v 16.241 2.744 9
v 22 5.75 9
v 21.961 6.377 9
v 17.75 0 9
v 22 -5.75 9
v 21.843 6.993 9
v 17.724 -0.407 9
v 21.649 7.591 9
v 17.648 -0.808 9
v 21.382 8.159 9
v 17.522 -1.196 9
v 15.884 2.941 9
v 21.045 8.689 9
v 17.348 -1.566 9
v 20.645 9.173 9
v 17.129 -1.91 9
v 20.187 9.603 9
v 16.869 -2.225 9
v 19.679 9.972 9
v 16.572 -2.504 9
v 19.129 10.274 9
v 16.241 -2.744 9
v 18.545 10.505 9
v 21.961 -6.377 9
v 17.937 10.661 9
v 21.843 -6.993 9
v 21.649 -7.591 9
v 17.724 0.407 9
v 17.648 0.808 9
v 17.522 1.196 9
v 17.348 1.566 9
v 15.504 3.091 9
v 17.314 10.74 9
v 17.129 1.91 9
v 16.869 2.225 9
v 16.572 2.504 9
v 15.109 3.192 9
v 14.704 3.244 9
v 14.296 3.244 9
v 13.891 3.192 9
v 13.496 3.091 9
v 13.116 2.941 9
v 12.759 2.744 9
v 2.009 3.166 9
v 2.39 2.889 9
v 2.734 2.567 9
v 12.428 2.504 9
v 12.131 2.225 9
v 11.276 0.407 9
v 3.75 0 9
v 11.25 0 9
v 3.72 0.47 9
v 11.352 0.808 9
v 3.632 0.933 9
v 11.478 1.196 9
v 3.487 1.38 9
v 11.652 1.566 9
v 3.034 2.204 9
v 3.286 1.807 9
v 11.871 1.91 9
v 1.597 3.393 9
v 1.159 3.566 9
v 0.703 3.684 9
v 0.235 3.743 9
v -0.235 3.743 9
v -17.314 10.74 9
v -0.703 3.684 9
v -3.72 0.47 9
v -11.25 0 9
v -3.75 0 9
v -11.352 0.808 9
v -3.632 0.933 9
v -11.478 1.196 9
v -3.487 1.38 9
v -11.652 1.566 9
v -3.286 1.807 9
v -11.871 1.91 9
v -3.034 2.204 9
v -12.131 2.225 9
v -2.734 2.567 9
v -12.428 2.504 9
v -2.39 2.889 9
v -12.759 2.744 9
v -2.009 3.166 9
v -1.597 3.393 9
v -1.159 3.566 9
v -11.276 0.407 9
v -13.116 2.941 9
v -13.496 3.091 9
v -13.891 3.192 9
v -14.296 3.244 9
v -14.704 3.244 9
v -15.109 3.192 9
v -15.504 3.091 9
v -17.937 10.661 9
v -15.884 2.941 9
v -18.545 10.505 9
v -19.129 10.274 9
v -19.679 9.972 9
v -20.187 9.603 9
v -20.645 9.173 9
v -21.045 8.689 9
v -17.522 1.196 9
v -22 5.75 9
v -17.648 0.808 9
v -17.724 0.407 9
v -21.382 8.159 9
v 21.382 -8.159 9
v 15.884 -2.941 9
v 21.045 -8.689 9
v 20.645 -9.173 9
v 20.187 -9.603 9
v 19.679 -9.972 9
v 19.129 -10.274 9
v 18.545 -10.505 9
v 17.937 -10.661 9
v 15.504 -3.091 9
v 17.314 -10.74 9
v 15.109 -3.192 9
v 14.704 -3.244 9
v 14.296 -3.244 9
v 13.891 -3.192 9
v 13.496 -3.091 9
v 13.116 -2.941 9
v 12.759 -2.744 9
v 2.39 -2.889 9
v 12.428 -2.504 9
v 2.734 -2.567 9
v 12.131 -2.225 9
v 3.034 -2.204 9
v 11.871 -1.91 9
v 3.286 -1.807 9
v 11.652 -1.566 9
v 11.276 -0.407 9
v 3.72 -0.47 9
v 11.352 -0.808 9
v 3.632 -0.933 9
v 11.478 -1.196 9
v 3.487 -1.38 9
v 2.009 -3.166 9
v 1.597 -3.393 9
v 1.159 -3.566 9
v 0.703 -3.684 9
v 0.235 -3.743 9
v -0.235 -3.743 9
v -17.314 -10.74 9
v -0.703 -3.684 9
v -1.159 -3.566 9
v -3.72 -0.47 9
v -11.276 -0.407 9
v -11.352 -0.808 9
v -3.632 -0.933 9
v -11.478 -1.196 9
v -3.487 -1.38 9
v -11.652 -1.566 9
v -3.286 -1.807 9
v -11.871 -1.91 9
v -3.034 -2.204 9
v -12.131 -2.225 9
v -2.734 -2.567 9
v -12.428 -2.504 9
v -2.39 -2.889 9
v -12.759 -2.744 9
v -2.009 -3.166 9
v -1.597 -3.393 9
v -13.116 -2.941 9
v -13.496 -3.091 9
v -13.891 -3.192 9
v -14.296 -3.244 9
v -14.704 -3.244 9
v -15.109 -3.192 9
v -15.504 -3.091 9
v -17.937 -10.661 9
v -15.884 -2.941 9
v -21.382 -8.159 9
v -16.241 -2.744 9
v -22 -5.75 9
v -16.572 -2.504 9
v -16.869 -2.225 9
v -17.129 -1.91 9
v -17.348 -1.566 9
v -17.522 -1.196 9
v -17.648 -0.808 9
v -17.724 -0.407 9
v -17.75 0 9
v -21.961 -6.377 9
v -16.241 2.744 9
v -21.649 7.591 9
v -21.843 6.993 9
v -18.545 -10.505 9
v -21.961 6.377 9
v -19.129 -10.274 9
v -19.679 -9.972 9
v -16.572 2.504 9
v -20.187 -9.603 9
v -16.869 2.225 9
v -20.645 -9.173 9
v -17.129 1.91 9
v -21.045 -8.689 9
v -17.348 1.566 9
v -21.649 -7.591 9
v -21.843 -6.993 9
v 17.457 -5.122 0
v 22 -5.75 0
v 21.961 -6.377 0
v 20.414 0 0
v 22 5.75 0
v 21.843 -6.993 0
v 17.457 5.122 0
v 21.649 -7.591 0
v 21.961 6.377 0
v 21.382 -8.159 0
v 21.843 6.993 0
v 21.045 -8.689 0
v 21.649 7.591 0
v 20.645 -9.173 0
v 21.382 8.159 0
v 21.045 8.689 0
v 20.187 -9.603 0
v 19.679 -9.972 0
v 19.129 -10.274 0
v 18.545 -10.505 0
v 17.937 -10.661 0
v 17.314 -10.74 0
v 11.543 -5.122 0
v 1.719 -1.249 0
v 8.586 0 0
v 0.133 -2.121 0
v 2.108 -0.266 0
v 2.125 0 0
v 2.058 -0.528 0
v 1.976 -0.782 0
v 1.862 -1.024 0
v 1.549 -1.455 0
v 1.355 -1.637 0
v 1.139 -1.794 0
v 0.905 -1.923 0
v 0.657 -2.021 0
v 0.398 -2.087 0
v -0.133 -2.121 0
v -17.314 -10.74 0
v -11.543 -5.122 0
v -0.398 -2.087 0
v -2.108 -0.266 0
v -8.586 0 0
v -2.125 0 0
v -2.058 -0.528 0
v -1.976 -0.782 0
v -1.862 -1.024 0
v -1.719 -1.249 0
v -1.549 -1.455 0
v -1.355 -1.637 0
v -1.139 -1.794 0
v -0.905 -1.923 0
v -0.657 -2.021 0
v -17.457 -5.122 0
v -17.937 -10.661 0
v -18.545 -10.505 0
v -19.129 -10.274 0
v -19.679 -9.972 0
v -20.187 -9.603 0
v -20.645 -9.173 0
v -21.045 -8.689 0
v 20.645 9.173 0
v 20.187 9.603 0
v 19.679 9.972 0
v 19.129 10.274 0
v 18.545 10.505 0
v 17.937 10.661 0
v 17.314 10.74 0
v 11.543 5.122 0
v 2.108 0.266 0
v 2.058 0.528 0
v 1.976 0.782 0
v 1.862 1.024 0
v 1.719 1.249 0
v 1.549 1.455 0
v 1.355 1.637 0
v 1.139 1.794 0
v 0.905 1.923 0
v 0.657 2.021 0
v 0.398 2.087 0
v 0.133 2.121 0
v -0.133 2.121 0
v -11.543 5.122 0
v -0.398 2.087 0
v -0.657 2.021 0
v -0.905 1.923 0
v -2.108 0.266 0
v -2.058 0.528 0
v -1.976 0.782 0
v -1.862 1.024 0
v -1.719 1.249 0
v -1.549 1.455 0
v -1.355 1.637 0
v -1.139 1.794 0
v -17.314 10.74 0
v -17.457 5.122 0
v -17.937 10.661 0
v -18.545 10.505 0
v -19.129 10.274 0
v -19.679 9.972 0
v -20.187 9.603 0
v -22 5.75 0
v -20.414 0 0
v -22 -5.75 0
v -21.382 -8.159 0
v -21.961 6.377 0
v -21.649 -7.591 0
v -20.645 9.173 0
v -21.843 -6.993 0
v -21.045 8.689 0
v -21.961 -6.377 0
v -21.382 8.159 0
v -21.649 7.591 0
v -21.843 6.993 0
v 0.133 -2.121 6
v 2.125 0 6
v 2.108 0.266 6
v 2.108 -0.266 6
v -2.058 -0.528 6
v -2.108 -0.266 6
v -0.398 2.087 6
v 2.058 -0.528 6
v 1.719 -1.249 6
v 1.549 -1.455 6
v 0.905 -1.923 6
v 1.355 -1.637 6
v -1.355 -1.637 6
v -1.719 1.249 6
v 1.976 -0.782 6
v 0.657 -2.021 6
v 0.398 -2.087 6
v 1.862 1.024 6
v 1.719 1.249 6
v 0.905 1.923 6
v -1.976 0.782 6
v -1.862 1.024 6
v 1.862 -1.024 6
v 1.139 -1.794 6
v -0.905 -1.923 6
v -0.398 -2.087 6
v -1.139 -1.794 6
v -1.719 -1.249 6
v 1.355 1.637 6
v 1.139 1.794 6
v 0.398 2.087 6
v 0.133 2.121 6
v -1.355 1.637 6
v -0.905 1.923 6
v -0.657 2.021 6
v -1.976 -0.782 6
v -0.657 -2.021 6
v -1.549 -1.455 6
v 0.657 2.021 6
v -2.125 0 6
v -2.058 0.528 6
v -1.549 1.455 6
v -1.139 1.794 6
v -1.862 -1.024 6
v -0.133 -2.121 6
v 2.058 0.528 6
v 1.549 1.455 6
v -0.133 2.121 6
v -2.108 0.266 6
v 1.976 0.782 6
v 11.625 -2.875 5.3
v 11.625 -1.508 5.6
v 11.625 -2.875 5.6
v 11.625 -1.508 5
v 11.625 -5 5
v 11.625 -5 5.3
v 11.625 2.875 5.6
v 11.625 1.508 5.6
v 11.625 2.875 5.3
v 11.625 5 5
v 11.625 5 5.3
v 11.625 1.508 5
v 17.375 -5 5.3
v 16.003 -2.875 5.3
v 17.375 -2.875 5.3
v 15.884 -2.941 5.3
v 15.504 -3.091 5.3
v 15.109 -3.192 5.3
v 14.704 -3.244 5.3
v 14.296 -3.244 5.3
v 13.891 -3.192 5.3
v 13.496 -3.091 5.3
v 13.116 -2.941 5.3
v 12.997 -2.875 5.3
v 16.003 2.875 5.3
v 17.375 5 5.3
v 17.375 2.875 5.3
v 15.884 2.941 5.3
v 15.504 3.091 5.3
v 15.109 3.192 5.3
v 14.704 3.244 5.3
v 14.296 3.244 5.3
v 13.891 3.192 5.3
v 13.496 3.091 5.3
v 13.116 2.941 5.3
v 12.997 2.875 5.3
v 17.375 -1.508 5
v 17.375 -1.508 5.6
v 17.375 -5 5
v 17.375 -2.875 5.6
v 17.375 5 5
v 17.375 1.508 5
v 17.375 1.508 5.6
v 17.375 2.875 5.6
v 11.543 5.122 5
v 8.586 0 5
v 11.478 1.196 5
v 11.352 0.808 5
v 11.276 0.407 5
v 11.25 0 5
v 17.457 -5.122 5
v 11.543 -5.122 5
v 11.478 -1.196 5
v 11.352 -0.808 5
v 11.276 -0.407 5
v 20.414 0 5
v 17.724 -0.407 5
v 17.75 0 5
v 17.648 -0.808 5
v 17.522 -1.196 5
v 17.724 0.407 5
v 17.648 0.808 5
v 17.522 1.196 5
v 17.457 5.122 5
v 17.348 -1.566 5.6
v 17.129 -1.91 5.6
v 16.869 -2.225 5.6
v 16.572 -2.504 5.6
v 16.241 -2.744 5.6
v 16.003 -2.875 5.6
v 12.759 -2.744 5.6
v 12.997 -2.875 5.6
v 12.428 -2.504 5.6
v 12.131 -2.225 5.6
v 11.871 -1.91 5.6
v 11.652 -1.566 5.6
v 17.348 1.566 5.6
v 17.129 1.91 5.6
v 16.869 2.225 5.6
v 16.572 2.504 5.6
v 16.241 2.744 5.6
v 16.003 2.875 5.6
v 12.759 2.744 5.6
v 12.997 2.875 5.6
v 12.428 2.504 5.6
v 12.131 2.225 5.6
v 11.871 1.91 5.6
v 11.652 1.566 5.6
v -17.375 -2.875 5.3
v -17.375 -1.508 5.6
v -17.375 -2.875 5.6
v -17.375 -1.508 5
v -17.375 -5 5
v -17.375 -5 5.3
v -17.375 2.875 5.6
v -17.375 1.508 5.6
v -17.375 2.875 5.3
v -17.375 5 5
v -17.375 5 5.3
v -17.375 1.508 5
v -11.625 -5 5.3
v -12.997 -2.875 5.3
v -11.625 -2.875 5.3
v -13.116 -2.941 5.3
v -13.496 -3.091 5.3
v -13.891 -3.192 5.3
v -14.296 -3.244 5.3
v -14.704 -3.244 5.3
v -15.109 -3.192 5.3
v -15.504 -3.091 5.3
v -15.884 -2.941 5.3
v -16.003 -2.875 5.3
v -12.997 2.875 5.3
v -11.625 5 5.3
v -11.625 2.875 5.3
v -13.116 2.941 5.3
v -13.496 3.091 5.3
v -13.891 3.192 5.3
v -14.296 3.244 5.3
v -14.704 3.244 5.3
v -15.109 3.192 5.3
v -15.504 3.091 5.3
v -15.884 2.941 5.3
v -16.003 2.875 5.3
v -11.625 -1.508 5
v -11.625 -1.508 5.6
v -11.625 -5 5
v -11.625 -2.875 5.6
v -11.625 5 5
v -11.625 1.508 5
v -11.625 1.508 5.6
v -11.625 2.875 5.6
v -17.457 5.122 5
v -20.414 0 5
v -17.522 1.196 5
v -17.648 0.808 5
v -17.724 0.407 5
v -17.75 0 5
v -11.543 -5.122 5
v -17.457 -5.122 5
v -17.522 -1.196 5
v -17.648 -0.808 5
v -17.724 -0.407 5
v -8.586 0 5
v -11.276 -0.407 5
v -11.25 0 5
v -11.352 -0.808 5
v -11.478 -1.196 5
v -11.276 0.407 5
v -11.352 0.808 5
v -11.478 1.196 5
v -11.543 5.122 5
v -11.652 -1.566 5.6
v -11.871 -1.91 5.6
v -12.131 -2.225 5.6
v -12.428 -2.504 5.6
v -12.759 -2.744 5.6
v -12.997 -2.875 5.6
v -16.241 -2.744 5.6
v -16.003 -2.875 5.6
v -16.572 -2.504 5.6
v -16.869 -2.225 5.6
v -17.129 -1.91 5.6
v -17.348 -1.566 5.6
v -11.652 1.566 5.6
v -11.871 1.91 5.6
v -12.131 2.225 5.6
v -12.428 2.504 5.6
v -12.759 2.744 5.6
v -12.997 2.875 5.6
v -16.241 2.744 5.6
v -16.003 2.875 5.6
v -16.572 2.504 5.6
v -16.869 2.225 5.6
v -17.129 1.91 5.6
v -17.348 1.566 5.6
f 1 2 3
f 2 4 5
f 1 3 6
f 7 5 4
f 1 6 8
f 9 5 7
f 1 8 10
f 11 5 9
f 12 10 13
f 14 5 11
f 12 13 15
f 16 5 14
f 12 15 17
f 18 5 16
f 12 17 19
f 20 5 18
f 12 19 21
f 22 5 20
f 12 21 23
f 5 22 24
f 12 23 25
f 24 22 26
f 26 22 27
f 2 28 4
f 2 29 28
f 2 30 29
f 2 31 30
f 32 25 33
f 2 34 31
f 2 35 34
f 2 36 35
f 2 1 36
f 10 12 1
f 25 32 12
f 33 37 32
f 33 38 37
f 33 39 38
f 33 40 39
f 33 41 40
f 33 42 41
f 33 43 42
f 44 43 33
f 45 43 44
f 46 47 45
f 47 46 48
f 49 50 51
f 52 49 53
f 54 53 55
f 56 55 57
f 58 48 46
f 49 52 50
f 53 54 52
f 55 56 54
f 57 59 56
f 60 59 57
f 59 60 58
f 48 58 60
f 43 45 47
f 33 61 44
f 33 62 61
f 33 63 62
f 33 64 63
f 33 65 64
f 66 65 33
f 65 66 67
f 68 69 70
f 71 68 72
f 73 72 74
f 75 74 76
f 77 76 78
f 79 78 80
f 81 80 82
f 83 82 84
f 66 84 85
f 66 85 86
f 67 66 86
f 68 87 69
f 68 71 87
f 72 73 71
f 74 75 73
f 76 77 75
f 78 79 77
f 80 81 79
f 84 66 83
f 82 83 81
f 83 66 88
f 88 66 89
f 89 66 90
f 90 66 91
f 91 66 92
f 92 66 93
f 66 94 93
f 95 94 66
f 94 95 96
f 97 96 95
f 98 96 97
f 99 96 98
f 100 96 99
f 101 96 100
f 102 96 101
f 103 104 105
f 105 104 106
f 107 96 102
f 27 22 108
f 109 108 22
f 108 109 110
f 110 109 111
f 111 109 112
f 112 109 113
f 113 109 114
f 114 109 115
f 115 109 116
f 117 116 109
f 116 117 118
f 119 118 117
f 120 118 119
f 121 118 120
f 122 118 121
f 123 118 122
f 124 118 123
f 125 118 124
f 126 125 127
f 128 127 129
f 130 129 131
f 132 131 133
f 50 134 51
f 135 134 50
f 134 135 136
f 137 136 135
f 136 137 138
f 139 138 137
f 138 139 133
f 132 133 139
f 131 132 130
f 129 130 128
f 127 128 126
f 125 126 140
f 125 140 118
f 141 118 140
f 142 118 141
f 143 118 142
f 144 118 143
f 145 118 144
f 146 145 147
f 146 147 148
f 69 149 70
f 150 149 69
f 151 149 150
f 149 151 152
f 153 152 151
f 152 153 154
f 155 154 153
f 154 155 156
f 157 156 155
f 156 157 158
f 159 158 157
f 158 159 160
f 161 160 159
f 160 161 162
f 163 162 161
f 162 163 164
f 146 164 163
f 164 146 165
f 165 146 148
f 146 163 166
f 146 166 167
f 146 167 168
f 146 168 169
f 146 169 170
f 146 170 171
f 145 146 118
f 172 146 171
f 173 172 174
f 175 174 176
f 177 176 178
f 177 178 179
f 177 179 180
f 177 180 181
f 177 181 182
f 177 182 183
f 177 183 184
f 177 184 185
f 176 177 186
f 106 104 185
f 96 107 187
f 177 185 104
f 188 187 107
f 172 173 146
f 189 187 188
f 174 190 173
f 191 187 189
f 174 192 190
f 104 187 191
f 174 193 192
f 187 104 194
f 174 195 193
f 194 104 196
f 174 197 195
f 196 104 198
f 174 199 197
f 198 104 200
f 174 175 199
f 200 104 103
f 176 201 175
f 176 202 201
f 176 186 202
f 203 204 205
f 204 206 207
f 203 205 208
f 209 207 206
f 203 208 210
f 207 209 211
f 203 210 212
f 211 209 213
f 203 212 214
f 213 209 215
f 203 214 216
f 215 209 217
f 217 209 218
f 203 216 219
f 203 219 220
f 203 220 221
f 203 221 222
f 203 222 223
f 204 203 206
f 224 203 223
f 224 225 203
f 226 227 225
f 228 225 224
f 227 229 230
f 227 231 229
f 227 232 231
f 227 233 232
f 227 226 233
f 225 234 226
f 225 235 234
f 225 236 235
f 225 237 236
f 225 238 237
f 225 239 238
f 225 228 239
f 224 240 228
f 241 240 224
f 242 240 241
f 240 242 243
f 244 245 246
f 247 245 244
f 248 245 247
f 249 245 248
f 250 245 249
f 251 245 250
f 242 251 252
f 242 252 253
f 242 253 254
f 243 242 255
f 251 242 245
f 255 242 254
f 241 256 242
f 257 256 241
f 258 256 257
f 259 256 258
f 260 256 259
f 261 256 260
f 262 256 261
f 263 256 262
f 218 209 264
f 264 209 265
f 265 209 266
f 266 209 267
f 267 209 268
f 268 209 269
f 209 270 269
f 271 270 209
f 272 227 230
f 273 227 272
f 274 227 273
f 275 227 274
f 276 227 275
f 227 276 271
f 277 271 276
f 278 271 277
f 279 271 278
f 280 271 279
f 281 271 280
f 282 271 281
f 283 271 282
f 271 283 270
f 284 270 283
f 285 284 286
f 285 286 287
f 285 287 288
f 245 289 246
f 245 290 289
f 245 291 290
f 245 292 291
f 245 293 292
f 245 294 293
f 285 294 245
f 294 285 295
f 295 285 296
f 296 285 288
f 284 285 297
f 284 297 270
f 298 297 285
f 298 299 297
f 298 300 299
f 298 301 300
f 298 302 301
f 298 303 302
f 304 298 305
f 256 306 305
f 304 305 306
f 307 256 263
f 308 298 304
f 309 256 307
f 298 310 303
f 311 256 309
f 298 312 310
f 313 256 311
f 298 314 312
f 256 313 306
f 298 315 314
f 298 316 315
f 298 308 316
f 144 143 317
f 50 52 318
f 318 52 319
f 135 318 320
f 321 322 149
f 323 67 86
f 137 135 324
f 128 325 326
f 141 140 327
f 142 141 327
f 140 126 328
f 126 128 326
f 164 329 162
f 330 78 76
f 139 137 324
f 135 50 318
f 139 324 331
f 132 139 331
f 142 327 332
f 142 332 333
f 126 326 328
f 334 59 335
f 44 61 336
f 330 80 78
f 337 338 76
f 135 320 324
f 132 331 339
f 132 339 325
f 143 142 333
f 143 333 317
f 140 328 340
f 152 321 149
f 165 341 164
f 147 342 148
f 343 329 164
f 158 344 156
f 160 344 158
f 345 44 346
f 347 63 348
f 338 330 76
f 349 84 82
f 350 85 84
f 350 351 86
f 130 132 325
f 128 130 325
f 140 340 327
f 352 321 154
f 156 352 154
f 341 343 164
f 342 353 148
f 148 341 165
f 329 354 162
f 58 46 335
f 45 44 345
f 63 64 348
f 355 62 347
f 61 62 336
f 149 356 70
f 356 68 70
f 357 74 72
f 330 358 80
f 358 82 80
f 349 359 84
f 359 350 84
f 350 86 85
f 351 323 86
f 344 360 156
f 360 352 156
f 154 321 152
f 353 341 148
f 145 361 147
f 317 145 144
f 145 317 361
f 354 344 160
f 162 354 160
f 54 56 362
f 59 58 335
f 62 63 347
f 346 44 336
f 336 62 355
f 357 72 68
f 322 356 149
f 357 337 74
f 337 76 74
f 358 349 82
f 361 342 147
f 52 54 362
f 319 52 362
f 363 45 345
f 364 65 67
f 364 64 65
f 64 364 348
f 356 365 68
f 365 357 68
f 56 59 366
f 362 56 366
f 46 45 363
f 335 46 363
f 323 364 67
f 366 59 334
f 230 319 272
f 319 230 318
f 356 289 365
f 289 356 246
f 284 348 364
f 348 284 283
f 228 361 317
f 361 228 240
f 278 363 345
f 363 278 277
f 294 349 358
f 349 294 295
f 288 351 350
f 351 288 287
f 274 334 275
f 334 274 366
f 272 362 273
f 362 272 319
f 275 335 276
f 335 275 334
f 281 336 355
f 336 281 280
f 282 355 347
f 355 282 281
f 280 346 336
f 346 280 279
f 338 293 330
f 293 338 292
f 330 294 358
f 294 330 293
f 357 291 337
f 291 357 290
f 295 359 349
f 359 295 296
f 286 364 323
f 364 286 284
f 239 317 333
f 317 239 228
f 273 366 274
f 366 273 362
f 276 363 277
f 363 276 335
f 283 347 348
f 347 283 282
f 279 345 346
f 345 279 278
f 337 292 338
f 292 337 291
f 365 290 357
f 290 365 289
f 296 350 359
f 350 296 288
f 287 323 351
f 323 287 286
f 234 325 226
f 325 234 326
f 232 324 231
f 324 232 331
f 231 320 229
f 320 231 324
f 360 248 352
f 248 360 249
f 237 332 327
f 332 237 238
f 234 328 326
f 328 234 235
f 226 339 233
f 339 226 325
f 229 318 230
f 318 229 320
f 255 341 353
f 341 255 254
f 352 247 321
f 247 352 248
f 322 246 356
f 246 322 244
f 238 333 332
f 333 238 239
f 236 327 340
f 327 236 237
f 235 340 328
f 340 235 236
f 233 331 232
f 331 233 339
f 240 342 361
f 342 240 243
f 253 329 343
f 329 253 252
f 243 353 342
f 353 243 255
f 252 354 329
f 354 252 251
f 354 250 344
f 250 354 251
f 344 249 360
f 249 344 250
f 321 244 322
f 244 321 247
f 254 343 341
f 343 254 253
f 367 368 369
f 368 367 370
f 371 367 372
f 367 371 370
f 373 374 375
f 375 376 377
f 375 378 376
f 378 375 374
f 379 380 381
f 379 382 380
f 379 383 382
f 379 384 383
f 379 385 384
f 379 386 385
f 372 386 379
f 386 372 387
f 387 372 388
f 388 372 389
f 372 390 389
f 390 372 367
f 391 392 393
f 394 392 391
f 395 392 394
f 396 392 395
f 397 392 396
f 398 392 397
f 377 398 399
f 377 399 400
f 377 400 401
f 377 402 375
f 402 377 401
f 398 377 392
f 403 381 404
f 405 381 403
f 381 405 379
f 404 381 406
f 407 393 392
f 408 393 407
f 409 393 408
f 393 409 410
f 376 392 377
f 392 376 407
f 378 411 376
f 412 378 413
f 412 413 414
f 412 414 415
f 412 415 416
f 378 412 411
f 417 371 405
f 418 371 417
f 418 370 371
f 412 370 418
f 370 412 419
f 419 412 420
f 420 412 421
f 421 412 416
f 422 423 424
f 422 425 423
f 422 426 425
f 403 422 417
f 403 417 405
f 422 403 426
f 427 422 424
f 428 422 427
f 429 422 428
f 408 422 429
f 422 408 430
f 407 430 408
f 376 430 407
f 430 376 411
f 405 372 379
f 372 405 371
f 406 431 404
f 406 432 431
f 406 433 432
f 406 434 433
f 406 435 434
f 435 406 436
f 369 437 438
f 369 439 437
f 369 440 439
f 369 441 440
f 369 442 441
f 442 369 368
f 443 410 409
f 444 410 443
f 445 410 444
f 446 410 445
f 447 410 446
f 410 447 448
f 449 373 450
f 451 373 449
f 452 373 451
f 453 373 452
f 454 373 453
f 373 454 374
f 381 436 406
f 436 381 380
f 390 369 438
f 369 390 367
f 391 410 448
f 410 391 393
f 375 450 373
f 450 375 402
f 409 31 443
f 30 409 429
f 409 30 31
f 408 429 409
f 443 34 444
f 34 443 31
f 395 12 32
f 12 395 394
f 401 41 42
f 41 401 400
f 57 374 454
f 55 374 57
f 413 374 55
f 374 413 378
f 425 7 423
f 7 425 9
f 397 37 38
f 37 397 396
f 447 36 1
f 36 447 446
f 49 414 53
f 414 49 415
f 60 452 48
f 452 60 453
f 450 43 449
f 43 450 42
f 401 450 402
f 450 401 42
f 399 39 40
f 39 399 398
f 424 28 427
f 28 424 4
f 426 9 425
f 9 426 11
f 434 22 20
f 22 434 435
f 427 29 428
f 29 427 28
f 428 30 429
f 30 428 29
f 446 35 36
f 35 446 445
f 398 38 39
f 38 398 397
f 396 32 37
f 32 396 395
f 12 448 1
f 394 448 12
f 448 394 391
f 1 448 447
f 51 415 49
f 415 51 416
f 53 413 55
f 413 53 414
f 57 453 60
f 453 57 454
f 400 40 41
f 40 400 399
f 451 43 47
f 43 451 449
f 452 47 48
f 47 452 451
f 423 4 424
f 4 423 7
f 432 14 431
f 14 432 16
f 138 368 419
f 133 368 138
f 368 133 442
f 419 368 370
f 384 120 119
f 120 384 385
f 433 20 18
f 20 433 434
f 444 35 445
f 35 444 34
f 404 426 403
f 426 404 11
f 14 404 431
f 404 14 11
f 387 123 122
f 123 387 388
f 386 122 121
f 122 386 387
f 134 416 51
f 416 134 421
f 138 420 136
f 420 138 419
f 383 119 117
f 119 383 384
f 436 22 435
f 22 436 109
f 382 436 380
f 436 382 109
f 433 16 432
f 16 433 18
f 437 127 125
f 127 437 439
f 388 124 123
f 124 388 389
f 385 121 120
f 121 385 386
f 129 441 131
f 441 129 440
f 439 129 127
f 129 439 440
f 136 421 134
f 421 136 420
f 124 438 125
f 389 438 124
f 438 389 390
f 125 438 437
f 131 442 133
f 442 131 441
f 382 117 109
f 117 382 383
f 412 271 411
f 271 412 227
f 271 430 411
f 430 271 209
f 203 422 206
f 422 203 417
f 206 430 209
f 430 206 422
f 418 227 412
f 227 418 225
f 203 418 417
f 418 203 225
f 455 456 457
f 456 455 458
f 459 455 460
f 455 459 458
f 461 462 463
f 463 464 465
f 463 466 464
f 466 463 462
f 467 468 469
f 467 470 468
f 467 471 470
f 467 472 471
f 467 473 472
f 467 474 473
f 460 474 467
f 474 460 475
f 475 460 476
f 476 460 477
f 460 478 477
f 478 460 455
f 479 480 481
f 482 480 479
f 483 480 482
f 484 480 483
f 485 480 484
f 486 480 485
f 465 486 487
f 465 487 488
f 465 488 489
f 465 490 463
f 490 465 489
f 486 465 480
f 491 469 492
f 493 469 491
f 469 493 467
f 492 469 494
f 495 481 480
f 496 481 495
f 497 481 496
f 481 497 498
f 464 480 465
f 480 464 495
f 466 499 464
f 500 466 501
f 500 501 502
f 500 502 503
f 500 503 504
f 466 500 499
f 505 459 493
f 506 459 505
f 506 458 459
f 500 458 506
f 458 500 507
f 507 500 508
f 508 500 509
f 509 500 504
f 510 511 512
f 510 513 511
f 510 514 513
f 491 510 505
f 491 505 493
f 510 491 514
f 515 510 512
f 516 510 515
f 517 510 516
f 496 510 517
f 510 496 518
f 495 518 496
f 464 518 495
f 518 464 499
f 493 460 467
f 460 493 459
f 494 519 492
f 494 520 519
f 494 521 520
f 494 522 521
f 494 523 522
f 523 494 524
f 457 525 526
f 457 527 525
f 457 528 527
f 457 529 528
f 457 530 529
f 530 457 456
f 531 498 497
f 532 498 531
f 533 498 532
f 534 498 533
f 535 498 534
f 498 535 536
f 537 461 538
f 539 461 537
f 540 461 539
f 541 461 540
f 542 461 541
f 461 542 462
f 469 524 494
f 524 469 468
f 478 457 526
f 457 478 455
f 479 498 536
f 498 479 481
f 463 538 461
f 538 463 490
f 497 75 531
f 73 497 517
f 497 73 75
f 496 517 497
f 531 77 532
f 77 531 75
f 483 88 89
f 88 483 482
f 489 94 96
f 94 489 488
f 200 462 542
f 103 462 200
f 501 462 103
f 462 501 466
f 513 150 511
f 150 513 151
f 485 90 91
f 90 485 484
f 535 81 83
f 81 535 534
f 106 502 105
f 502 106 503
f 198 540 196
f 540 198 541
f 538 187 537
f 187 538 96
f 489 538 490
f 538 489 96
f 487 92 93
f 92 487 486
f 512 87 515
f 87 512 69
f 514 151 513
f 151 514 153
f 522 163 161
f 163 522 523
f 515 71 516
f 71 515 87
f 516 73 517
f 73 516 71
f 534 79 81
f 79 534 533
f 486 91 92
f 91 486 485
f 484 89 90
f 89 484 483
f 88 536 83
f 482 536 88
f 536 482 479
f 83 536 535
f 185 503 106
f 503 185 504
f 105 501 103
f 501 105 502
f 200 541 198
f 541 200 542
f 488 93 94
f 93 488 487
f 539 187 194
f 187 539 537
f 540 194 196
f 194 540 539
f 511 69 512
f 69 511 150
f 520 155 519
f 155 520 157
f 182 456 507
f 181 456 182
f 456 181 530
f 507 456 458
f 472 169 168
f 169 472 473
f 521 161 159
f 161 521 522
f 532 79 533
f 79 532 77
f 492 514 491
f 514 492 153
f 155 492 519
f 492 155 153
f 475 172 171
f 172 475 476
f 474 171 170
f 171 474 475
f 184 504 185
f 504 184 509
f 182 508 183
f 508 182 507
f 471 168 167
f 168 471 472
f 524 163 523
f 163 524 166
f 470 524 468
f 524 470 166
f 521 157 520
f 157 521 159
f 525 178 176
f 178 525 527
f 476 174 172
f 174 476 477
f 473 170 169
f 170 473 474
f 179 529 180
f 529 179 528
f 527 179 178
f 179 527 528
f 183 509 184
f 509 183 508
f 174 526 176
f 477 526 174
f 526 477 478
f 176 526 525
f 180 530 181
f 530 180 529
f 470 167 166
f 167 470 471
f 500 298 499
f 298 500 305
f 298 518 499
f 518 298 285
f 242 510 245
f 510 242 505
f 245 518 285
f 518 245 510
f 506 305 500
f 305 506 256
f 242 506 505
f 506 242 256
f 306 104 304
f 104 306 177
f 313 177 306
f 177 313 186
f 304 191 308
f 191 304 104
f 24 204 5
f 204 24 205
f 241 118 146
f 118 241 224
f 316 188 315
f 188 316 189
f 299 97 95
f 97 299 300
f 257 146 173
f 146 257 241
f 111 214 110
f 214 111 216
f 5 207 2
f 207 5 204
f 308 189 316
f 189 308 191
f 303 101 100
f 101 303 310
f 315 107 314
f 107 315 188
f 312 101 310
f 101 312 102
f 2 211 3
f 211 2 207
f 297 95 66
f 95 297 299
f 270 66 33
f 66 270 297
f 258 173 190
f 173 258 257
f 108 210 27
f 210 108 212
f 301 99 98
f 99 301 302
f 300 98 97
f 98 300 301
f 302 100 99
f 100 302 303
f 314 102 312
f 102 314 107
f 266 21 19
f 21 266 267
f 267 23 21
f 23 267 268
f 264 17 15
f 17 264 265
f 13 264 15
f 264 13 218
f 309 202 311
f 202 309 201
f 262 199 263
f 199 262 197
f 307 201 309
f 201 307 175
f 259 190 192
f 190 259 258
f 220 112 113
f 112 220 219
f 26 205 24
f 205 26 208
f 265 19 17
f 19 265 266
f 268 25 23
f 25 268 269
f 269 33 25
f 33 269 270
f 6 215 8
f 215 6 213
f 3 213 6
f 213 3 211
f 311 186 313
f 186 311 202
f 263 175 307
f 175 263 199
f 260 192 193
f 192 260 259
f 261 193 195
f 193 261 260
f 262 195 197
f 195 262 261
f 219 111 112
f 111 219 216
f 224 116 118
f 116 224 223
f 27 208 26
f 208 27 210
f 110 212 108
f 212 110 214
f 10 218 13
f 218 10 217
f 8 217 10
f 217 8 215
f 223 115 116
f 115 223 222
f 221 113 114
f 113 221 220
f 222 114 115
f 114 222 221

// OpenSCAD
$fn = 50;


difference() {
	union() {
		hull() {
			translate(v = [-17.0000000000, 5.7500000000, 0]) {
				cylinder(h = 9, r = 5);
			}
			translate(v = [17.0000000000, 5.7500000000, 0]) {
				cylinder(h = 9, r = 5);
			}
			translate(v = [-17.0000000000, -5.7500000000, 0]) {
				cylinder(h = 9, r = 5);
			}
			translate(v = [17.0000000000, -5.7500000000, 0]) {
				cylinder(h = 9, r = 5);
			}
		}
	}
	union() {
		translate(v = [0, 0, 9]) {
			rotate(a = [0, 0, 0]) {
				difference() {
					union() {
						#translate(v = [0, 0, -9.0000000000]) {
							cylinder(h = 9, r = 2.0000000000);
						}
						#translate(v = [0, 0, -3]) {
							cylinder(h = 3, r1 = 2.1250000000, r2 = 3.7500000000);
						}
						#translate(v = [0, 0, -9.0000000000]) {
							cylinder(h = 9, r = 2.1250000000);
						}
						#translate(v = [0, 0, -9.0000000000]) {
							cylinder(h = 9, r = 2.0000000000);
						}
					}
					union();
				}
			}
		}
		translate(v = [14.5000000000, 0, 0]) {
			rotate(a = [0, 0, 0]) {
				difference() {
					union() {
						#translate(v = [-2.8750000000, -5.0000000000, -0.3000000000]) {
							cube(size = [5.7500000000, 10, 0.3000000000]);
						}
						#translate(v = [-2.8750000000, -2.8750000000, -0.6000000000]) {
							cube(size = [5.7500000000, 5.7500000000, 0.3000000000]);
						}
						#translate(v = [-2.8750000000, -5.0000000000, 5]) {
							cube(size = [5.7500000000, 10, 0.3000000000]);
						}
						#translate(v = [-2.8750000000, -2.8750000000, 5.3000000000]) {
							cube(size = [5.7500000000, 5.7500000000, 0.3000000000]);
						}
						#translate(v = [0, 0, -100.0000000000]) {
							cylinder(h = 200, r = 3.2500000000);
						}
						#linear_extrude(height = 5) {
							polygon(points = [[5.9142500000, 0.0000000000], [2.9571250000, 5.1218907443], [-2.9571250000, 5.1218907443], [-5.9142500000, 0.0000000000], [-2.9571250000, -5.1218907443], [2.9571250000, -5.1218907443]]);
						}
						#translate(v = [-2.8750000000, -5.0000000000, -0.3000000000]) {
							cube(size = [5.7500000000, 10, 0.3000000000]);
						}
						#translate(v = [-2.8750000000, -2.8750000000, -0.6000000000]) {
							cube(size = [5.7500000000, 5.7500000000, 0.3000000000]);
						}
						#translate(v = [-2.8750000000, -5.0000000000, 5]) {
							cube(size = [5.7500000000, 10, 0.3000000000]);
						}
						#translate(v = [-2.8750000000, -2.8750000000, 5.3000000000]) {
							cube(size = [5.7500000000, 5.7500000000, 0.3000000000]);
						}
						#translate(v = [0, 0, -100.0000000000]) {
							cylinder(h = 200, r = 3.2500000000);
						}
						#translate(v = [-2.8750000000, -5.0000000000, -0.3000000000]) {
							cube(size = [5.7500000000, 10, 0.3000000000]);
						}
						#translate(v = [-2.8750000000, -2.8750000000, -0.6000000000]) {
							cube(size = [5.7500000000, 5.7500000000, 0.3000000000]);
						}
						#translate(v = [-2.8750000000, -5.0000000000, 5]) {
							cube(size = [5.7500000000, 10, 0.3000000000]);
						}
						#translate(v = [-2.8750000000, -2.8750000000, 5.3000000000]) {
							cube(size = [5.7500000000, 5.7500000000, 0.3000000000]);
						}
						#translate(v = [0, 0, -100.0000000000]) {
							cylinder(h = 200, r = 3.2500000000);
						}
					}
					union();
				}
			}
		}
		translate(v = [-14.5000000000, 0, 0]) {
			rotate(a = [0, 0, 0]) {
				difference() {
					union() {
						#translate(v = [-2.8750000000, -5.0000000000, -0.3000000000]) {
							cube(size = [5.7500000000, 10, 0.3000000000]);
						}
						#translate(v = [-2.8750000000, -2.8750000000, -0.6000000000]) {
							cube(size = [5.7500000000, 5.7500000000, 0.3000000000]);
						}
						#translate(v = [-2.8750000000, -5.0000000000, 5]) {
							cube(size = [5.7500000000, 10, 0.3000000000]);
						}
						#translate(v = [-2.8750000000, -2.8750000000, 5.3000000000]) {
							cube(size = [5.7500000000, 5.7500000000, 0.3000000000]);
						}
						#translate(v = [0, 0, -100.0000000000]) {
							cylinder(h = 200, r = 3.2500000000);
						}
						#linear_extrude(height = 5) {
							polygon(points = [[5.9142500000, 0.0000000000], [2.9571250000, 5.1218907443], [-2.9571250000, 5.1218907443], [-5.9142500000, 0.0000000000], [-2.9571250000, -5.1218907443], [2.9571250000, -5.1218907443]]);
						}
						#translate(v = [-2.8750000000, -5.0000000000, -0.3000000000]) {
							cube(size = [5.7500000000, 10, 0.3000000000]);
						}
						#translate(v = [-2.8750000000, -2.8750000000, -0.6000000000]) {
							cube(size = [5.7500000000, 5.7500000000, 0.3000000000]);
						}
						#translate(v = [-2.8750000000, -5.0000000000, 5]) {
							cube(size = [5.7500000000, 10, 0.3000000000]);
						}
						#translate(v = [-2.8750000000, -2.8750000000, 5.3000000000]) {
							cube(size = [5.7500000000, 5.7500000000, 0.3000000000]);
						}
						#translate(v = [0, 0, -100.0000000000]) {
							cylinder(h = 200, r = 3.2500000000);
						}
						#translate(v = [-2.8750000000, -5.0000000000, -0.3000000000]) {
							cube(size = [5.7500000000, 10, 0.3000000000]);
						}
						#translate(v = [-2.8750000000, -2.8750000000, -0.6000000000]) {
							cube(size = [5.7500000000, 5.7500000000, 0.3000000000]);
						}
						#translate(v = [-2.8750000000, -5.0000000000, 5]) {
							cube(size = [5.7500000000, 10, 0.3000000000]);
						}
						#translate(v = [-2.8750000000, -2.8750000000, 5.3000000000]) {
							cube(size = [5.7500000000, 5.7500000000, 0.3000000000]);
						}
						#translate(v = [0, 0, -100.0000000000]) {
							cylinder(h = 200, r = 3.2500000000);
						}
					}
					union();
				}
			}
		}
	}
}
